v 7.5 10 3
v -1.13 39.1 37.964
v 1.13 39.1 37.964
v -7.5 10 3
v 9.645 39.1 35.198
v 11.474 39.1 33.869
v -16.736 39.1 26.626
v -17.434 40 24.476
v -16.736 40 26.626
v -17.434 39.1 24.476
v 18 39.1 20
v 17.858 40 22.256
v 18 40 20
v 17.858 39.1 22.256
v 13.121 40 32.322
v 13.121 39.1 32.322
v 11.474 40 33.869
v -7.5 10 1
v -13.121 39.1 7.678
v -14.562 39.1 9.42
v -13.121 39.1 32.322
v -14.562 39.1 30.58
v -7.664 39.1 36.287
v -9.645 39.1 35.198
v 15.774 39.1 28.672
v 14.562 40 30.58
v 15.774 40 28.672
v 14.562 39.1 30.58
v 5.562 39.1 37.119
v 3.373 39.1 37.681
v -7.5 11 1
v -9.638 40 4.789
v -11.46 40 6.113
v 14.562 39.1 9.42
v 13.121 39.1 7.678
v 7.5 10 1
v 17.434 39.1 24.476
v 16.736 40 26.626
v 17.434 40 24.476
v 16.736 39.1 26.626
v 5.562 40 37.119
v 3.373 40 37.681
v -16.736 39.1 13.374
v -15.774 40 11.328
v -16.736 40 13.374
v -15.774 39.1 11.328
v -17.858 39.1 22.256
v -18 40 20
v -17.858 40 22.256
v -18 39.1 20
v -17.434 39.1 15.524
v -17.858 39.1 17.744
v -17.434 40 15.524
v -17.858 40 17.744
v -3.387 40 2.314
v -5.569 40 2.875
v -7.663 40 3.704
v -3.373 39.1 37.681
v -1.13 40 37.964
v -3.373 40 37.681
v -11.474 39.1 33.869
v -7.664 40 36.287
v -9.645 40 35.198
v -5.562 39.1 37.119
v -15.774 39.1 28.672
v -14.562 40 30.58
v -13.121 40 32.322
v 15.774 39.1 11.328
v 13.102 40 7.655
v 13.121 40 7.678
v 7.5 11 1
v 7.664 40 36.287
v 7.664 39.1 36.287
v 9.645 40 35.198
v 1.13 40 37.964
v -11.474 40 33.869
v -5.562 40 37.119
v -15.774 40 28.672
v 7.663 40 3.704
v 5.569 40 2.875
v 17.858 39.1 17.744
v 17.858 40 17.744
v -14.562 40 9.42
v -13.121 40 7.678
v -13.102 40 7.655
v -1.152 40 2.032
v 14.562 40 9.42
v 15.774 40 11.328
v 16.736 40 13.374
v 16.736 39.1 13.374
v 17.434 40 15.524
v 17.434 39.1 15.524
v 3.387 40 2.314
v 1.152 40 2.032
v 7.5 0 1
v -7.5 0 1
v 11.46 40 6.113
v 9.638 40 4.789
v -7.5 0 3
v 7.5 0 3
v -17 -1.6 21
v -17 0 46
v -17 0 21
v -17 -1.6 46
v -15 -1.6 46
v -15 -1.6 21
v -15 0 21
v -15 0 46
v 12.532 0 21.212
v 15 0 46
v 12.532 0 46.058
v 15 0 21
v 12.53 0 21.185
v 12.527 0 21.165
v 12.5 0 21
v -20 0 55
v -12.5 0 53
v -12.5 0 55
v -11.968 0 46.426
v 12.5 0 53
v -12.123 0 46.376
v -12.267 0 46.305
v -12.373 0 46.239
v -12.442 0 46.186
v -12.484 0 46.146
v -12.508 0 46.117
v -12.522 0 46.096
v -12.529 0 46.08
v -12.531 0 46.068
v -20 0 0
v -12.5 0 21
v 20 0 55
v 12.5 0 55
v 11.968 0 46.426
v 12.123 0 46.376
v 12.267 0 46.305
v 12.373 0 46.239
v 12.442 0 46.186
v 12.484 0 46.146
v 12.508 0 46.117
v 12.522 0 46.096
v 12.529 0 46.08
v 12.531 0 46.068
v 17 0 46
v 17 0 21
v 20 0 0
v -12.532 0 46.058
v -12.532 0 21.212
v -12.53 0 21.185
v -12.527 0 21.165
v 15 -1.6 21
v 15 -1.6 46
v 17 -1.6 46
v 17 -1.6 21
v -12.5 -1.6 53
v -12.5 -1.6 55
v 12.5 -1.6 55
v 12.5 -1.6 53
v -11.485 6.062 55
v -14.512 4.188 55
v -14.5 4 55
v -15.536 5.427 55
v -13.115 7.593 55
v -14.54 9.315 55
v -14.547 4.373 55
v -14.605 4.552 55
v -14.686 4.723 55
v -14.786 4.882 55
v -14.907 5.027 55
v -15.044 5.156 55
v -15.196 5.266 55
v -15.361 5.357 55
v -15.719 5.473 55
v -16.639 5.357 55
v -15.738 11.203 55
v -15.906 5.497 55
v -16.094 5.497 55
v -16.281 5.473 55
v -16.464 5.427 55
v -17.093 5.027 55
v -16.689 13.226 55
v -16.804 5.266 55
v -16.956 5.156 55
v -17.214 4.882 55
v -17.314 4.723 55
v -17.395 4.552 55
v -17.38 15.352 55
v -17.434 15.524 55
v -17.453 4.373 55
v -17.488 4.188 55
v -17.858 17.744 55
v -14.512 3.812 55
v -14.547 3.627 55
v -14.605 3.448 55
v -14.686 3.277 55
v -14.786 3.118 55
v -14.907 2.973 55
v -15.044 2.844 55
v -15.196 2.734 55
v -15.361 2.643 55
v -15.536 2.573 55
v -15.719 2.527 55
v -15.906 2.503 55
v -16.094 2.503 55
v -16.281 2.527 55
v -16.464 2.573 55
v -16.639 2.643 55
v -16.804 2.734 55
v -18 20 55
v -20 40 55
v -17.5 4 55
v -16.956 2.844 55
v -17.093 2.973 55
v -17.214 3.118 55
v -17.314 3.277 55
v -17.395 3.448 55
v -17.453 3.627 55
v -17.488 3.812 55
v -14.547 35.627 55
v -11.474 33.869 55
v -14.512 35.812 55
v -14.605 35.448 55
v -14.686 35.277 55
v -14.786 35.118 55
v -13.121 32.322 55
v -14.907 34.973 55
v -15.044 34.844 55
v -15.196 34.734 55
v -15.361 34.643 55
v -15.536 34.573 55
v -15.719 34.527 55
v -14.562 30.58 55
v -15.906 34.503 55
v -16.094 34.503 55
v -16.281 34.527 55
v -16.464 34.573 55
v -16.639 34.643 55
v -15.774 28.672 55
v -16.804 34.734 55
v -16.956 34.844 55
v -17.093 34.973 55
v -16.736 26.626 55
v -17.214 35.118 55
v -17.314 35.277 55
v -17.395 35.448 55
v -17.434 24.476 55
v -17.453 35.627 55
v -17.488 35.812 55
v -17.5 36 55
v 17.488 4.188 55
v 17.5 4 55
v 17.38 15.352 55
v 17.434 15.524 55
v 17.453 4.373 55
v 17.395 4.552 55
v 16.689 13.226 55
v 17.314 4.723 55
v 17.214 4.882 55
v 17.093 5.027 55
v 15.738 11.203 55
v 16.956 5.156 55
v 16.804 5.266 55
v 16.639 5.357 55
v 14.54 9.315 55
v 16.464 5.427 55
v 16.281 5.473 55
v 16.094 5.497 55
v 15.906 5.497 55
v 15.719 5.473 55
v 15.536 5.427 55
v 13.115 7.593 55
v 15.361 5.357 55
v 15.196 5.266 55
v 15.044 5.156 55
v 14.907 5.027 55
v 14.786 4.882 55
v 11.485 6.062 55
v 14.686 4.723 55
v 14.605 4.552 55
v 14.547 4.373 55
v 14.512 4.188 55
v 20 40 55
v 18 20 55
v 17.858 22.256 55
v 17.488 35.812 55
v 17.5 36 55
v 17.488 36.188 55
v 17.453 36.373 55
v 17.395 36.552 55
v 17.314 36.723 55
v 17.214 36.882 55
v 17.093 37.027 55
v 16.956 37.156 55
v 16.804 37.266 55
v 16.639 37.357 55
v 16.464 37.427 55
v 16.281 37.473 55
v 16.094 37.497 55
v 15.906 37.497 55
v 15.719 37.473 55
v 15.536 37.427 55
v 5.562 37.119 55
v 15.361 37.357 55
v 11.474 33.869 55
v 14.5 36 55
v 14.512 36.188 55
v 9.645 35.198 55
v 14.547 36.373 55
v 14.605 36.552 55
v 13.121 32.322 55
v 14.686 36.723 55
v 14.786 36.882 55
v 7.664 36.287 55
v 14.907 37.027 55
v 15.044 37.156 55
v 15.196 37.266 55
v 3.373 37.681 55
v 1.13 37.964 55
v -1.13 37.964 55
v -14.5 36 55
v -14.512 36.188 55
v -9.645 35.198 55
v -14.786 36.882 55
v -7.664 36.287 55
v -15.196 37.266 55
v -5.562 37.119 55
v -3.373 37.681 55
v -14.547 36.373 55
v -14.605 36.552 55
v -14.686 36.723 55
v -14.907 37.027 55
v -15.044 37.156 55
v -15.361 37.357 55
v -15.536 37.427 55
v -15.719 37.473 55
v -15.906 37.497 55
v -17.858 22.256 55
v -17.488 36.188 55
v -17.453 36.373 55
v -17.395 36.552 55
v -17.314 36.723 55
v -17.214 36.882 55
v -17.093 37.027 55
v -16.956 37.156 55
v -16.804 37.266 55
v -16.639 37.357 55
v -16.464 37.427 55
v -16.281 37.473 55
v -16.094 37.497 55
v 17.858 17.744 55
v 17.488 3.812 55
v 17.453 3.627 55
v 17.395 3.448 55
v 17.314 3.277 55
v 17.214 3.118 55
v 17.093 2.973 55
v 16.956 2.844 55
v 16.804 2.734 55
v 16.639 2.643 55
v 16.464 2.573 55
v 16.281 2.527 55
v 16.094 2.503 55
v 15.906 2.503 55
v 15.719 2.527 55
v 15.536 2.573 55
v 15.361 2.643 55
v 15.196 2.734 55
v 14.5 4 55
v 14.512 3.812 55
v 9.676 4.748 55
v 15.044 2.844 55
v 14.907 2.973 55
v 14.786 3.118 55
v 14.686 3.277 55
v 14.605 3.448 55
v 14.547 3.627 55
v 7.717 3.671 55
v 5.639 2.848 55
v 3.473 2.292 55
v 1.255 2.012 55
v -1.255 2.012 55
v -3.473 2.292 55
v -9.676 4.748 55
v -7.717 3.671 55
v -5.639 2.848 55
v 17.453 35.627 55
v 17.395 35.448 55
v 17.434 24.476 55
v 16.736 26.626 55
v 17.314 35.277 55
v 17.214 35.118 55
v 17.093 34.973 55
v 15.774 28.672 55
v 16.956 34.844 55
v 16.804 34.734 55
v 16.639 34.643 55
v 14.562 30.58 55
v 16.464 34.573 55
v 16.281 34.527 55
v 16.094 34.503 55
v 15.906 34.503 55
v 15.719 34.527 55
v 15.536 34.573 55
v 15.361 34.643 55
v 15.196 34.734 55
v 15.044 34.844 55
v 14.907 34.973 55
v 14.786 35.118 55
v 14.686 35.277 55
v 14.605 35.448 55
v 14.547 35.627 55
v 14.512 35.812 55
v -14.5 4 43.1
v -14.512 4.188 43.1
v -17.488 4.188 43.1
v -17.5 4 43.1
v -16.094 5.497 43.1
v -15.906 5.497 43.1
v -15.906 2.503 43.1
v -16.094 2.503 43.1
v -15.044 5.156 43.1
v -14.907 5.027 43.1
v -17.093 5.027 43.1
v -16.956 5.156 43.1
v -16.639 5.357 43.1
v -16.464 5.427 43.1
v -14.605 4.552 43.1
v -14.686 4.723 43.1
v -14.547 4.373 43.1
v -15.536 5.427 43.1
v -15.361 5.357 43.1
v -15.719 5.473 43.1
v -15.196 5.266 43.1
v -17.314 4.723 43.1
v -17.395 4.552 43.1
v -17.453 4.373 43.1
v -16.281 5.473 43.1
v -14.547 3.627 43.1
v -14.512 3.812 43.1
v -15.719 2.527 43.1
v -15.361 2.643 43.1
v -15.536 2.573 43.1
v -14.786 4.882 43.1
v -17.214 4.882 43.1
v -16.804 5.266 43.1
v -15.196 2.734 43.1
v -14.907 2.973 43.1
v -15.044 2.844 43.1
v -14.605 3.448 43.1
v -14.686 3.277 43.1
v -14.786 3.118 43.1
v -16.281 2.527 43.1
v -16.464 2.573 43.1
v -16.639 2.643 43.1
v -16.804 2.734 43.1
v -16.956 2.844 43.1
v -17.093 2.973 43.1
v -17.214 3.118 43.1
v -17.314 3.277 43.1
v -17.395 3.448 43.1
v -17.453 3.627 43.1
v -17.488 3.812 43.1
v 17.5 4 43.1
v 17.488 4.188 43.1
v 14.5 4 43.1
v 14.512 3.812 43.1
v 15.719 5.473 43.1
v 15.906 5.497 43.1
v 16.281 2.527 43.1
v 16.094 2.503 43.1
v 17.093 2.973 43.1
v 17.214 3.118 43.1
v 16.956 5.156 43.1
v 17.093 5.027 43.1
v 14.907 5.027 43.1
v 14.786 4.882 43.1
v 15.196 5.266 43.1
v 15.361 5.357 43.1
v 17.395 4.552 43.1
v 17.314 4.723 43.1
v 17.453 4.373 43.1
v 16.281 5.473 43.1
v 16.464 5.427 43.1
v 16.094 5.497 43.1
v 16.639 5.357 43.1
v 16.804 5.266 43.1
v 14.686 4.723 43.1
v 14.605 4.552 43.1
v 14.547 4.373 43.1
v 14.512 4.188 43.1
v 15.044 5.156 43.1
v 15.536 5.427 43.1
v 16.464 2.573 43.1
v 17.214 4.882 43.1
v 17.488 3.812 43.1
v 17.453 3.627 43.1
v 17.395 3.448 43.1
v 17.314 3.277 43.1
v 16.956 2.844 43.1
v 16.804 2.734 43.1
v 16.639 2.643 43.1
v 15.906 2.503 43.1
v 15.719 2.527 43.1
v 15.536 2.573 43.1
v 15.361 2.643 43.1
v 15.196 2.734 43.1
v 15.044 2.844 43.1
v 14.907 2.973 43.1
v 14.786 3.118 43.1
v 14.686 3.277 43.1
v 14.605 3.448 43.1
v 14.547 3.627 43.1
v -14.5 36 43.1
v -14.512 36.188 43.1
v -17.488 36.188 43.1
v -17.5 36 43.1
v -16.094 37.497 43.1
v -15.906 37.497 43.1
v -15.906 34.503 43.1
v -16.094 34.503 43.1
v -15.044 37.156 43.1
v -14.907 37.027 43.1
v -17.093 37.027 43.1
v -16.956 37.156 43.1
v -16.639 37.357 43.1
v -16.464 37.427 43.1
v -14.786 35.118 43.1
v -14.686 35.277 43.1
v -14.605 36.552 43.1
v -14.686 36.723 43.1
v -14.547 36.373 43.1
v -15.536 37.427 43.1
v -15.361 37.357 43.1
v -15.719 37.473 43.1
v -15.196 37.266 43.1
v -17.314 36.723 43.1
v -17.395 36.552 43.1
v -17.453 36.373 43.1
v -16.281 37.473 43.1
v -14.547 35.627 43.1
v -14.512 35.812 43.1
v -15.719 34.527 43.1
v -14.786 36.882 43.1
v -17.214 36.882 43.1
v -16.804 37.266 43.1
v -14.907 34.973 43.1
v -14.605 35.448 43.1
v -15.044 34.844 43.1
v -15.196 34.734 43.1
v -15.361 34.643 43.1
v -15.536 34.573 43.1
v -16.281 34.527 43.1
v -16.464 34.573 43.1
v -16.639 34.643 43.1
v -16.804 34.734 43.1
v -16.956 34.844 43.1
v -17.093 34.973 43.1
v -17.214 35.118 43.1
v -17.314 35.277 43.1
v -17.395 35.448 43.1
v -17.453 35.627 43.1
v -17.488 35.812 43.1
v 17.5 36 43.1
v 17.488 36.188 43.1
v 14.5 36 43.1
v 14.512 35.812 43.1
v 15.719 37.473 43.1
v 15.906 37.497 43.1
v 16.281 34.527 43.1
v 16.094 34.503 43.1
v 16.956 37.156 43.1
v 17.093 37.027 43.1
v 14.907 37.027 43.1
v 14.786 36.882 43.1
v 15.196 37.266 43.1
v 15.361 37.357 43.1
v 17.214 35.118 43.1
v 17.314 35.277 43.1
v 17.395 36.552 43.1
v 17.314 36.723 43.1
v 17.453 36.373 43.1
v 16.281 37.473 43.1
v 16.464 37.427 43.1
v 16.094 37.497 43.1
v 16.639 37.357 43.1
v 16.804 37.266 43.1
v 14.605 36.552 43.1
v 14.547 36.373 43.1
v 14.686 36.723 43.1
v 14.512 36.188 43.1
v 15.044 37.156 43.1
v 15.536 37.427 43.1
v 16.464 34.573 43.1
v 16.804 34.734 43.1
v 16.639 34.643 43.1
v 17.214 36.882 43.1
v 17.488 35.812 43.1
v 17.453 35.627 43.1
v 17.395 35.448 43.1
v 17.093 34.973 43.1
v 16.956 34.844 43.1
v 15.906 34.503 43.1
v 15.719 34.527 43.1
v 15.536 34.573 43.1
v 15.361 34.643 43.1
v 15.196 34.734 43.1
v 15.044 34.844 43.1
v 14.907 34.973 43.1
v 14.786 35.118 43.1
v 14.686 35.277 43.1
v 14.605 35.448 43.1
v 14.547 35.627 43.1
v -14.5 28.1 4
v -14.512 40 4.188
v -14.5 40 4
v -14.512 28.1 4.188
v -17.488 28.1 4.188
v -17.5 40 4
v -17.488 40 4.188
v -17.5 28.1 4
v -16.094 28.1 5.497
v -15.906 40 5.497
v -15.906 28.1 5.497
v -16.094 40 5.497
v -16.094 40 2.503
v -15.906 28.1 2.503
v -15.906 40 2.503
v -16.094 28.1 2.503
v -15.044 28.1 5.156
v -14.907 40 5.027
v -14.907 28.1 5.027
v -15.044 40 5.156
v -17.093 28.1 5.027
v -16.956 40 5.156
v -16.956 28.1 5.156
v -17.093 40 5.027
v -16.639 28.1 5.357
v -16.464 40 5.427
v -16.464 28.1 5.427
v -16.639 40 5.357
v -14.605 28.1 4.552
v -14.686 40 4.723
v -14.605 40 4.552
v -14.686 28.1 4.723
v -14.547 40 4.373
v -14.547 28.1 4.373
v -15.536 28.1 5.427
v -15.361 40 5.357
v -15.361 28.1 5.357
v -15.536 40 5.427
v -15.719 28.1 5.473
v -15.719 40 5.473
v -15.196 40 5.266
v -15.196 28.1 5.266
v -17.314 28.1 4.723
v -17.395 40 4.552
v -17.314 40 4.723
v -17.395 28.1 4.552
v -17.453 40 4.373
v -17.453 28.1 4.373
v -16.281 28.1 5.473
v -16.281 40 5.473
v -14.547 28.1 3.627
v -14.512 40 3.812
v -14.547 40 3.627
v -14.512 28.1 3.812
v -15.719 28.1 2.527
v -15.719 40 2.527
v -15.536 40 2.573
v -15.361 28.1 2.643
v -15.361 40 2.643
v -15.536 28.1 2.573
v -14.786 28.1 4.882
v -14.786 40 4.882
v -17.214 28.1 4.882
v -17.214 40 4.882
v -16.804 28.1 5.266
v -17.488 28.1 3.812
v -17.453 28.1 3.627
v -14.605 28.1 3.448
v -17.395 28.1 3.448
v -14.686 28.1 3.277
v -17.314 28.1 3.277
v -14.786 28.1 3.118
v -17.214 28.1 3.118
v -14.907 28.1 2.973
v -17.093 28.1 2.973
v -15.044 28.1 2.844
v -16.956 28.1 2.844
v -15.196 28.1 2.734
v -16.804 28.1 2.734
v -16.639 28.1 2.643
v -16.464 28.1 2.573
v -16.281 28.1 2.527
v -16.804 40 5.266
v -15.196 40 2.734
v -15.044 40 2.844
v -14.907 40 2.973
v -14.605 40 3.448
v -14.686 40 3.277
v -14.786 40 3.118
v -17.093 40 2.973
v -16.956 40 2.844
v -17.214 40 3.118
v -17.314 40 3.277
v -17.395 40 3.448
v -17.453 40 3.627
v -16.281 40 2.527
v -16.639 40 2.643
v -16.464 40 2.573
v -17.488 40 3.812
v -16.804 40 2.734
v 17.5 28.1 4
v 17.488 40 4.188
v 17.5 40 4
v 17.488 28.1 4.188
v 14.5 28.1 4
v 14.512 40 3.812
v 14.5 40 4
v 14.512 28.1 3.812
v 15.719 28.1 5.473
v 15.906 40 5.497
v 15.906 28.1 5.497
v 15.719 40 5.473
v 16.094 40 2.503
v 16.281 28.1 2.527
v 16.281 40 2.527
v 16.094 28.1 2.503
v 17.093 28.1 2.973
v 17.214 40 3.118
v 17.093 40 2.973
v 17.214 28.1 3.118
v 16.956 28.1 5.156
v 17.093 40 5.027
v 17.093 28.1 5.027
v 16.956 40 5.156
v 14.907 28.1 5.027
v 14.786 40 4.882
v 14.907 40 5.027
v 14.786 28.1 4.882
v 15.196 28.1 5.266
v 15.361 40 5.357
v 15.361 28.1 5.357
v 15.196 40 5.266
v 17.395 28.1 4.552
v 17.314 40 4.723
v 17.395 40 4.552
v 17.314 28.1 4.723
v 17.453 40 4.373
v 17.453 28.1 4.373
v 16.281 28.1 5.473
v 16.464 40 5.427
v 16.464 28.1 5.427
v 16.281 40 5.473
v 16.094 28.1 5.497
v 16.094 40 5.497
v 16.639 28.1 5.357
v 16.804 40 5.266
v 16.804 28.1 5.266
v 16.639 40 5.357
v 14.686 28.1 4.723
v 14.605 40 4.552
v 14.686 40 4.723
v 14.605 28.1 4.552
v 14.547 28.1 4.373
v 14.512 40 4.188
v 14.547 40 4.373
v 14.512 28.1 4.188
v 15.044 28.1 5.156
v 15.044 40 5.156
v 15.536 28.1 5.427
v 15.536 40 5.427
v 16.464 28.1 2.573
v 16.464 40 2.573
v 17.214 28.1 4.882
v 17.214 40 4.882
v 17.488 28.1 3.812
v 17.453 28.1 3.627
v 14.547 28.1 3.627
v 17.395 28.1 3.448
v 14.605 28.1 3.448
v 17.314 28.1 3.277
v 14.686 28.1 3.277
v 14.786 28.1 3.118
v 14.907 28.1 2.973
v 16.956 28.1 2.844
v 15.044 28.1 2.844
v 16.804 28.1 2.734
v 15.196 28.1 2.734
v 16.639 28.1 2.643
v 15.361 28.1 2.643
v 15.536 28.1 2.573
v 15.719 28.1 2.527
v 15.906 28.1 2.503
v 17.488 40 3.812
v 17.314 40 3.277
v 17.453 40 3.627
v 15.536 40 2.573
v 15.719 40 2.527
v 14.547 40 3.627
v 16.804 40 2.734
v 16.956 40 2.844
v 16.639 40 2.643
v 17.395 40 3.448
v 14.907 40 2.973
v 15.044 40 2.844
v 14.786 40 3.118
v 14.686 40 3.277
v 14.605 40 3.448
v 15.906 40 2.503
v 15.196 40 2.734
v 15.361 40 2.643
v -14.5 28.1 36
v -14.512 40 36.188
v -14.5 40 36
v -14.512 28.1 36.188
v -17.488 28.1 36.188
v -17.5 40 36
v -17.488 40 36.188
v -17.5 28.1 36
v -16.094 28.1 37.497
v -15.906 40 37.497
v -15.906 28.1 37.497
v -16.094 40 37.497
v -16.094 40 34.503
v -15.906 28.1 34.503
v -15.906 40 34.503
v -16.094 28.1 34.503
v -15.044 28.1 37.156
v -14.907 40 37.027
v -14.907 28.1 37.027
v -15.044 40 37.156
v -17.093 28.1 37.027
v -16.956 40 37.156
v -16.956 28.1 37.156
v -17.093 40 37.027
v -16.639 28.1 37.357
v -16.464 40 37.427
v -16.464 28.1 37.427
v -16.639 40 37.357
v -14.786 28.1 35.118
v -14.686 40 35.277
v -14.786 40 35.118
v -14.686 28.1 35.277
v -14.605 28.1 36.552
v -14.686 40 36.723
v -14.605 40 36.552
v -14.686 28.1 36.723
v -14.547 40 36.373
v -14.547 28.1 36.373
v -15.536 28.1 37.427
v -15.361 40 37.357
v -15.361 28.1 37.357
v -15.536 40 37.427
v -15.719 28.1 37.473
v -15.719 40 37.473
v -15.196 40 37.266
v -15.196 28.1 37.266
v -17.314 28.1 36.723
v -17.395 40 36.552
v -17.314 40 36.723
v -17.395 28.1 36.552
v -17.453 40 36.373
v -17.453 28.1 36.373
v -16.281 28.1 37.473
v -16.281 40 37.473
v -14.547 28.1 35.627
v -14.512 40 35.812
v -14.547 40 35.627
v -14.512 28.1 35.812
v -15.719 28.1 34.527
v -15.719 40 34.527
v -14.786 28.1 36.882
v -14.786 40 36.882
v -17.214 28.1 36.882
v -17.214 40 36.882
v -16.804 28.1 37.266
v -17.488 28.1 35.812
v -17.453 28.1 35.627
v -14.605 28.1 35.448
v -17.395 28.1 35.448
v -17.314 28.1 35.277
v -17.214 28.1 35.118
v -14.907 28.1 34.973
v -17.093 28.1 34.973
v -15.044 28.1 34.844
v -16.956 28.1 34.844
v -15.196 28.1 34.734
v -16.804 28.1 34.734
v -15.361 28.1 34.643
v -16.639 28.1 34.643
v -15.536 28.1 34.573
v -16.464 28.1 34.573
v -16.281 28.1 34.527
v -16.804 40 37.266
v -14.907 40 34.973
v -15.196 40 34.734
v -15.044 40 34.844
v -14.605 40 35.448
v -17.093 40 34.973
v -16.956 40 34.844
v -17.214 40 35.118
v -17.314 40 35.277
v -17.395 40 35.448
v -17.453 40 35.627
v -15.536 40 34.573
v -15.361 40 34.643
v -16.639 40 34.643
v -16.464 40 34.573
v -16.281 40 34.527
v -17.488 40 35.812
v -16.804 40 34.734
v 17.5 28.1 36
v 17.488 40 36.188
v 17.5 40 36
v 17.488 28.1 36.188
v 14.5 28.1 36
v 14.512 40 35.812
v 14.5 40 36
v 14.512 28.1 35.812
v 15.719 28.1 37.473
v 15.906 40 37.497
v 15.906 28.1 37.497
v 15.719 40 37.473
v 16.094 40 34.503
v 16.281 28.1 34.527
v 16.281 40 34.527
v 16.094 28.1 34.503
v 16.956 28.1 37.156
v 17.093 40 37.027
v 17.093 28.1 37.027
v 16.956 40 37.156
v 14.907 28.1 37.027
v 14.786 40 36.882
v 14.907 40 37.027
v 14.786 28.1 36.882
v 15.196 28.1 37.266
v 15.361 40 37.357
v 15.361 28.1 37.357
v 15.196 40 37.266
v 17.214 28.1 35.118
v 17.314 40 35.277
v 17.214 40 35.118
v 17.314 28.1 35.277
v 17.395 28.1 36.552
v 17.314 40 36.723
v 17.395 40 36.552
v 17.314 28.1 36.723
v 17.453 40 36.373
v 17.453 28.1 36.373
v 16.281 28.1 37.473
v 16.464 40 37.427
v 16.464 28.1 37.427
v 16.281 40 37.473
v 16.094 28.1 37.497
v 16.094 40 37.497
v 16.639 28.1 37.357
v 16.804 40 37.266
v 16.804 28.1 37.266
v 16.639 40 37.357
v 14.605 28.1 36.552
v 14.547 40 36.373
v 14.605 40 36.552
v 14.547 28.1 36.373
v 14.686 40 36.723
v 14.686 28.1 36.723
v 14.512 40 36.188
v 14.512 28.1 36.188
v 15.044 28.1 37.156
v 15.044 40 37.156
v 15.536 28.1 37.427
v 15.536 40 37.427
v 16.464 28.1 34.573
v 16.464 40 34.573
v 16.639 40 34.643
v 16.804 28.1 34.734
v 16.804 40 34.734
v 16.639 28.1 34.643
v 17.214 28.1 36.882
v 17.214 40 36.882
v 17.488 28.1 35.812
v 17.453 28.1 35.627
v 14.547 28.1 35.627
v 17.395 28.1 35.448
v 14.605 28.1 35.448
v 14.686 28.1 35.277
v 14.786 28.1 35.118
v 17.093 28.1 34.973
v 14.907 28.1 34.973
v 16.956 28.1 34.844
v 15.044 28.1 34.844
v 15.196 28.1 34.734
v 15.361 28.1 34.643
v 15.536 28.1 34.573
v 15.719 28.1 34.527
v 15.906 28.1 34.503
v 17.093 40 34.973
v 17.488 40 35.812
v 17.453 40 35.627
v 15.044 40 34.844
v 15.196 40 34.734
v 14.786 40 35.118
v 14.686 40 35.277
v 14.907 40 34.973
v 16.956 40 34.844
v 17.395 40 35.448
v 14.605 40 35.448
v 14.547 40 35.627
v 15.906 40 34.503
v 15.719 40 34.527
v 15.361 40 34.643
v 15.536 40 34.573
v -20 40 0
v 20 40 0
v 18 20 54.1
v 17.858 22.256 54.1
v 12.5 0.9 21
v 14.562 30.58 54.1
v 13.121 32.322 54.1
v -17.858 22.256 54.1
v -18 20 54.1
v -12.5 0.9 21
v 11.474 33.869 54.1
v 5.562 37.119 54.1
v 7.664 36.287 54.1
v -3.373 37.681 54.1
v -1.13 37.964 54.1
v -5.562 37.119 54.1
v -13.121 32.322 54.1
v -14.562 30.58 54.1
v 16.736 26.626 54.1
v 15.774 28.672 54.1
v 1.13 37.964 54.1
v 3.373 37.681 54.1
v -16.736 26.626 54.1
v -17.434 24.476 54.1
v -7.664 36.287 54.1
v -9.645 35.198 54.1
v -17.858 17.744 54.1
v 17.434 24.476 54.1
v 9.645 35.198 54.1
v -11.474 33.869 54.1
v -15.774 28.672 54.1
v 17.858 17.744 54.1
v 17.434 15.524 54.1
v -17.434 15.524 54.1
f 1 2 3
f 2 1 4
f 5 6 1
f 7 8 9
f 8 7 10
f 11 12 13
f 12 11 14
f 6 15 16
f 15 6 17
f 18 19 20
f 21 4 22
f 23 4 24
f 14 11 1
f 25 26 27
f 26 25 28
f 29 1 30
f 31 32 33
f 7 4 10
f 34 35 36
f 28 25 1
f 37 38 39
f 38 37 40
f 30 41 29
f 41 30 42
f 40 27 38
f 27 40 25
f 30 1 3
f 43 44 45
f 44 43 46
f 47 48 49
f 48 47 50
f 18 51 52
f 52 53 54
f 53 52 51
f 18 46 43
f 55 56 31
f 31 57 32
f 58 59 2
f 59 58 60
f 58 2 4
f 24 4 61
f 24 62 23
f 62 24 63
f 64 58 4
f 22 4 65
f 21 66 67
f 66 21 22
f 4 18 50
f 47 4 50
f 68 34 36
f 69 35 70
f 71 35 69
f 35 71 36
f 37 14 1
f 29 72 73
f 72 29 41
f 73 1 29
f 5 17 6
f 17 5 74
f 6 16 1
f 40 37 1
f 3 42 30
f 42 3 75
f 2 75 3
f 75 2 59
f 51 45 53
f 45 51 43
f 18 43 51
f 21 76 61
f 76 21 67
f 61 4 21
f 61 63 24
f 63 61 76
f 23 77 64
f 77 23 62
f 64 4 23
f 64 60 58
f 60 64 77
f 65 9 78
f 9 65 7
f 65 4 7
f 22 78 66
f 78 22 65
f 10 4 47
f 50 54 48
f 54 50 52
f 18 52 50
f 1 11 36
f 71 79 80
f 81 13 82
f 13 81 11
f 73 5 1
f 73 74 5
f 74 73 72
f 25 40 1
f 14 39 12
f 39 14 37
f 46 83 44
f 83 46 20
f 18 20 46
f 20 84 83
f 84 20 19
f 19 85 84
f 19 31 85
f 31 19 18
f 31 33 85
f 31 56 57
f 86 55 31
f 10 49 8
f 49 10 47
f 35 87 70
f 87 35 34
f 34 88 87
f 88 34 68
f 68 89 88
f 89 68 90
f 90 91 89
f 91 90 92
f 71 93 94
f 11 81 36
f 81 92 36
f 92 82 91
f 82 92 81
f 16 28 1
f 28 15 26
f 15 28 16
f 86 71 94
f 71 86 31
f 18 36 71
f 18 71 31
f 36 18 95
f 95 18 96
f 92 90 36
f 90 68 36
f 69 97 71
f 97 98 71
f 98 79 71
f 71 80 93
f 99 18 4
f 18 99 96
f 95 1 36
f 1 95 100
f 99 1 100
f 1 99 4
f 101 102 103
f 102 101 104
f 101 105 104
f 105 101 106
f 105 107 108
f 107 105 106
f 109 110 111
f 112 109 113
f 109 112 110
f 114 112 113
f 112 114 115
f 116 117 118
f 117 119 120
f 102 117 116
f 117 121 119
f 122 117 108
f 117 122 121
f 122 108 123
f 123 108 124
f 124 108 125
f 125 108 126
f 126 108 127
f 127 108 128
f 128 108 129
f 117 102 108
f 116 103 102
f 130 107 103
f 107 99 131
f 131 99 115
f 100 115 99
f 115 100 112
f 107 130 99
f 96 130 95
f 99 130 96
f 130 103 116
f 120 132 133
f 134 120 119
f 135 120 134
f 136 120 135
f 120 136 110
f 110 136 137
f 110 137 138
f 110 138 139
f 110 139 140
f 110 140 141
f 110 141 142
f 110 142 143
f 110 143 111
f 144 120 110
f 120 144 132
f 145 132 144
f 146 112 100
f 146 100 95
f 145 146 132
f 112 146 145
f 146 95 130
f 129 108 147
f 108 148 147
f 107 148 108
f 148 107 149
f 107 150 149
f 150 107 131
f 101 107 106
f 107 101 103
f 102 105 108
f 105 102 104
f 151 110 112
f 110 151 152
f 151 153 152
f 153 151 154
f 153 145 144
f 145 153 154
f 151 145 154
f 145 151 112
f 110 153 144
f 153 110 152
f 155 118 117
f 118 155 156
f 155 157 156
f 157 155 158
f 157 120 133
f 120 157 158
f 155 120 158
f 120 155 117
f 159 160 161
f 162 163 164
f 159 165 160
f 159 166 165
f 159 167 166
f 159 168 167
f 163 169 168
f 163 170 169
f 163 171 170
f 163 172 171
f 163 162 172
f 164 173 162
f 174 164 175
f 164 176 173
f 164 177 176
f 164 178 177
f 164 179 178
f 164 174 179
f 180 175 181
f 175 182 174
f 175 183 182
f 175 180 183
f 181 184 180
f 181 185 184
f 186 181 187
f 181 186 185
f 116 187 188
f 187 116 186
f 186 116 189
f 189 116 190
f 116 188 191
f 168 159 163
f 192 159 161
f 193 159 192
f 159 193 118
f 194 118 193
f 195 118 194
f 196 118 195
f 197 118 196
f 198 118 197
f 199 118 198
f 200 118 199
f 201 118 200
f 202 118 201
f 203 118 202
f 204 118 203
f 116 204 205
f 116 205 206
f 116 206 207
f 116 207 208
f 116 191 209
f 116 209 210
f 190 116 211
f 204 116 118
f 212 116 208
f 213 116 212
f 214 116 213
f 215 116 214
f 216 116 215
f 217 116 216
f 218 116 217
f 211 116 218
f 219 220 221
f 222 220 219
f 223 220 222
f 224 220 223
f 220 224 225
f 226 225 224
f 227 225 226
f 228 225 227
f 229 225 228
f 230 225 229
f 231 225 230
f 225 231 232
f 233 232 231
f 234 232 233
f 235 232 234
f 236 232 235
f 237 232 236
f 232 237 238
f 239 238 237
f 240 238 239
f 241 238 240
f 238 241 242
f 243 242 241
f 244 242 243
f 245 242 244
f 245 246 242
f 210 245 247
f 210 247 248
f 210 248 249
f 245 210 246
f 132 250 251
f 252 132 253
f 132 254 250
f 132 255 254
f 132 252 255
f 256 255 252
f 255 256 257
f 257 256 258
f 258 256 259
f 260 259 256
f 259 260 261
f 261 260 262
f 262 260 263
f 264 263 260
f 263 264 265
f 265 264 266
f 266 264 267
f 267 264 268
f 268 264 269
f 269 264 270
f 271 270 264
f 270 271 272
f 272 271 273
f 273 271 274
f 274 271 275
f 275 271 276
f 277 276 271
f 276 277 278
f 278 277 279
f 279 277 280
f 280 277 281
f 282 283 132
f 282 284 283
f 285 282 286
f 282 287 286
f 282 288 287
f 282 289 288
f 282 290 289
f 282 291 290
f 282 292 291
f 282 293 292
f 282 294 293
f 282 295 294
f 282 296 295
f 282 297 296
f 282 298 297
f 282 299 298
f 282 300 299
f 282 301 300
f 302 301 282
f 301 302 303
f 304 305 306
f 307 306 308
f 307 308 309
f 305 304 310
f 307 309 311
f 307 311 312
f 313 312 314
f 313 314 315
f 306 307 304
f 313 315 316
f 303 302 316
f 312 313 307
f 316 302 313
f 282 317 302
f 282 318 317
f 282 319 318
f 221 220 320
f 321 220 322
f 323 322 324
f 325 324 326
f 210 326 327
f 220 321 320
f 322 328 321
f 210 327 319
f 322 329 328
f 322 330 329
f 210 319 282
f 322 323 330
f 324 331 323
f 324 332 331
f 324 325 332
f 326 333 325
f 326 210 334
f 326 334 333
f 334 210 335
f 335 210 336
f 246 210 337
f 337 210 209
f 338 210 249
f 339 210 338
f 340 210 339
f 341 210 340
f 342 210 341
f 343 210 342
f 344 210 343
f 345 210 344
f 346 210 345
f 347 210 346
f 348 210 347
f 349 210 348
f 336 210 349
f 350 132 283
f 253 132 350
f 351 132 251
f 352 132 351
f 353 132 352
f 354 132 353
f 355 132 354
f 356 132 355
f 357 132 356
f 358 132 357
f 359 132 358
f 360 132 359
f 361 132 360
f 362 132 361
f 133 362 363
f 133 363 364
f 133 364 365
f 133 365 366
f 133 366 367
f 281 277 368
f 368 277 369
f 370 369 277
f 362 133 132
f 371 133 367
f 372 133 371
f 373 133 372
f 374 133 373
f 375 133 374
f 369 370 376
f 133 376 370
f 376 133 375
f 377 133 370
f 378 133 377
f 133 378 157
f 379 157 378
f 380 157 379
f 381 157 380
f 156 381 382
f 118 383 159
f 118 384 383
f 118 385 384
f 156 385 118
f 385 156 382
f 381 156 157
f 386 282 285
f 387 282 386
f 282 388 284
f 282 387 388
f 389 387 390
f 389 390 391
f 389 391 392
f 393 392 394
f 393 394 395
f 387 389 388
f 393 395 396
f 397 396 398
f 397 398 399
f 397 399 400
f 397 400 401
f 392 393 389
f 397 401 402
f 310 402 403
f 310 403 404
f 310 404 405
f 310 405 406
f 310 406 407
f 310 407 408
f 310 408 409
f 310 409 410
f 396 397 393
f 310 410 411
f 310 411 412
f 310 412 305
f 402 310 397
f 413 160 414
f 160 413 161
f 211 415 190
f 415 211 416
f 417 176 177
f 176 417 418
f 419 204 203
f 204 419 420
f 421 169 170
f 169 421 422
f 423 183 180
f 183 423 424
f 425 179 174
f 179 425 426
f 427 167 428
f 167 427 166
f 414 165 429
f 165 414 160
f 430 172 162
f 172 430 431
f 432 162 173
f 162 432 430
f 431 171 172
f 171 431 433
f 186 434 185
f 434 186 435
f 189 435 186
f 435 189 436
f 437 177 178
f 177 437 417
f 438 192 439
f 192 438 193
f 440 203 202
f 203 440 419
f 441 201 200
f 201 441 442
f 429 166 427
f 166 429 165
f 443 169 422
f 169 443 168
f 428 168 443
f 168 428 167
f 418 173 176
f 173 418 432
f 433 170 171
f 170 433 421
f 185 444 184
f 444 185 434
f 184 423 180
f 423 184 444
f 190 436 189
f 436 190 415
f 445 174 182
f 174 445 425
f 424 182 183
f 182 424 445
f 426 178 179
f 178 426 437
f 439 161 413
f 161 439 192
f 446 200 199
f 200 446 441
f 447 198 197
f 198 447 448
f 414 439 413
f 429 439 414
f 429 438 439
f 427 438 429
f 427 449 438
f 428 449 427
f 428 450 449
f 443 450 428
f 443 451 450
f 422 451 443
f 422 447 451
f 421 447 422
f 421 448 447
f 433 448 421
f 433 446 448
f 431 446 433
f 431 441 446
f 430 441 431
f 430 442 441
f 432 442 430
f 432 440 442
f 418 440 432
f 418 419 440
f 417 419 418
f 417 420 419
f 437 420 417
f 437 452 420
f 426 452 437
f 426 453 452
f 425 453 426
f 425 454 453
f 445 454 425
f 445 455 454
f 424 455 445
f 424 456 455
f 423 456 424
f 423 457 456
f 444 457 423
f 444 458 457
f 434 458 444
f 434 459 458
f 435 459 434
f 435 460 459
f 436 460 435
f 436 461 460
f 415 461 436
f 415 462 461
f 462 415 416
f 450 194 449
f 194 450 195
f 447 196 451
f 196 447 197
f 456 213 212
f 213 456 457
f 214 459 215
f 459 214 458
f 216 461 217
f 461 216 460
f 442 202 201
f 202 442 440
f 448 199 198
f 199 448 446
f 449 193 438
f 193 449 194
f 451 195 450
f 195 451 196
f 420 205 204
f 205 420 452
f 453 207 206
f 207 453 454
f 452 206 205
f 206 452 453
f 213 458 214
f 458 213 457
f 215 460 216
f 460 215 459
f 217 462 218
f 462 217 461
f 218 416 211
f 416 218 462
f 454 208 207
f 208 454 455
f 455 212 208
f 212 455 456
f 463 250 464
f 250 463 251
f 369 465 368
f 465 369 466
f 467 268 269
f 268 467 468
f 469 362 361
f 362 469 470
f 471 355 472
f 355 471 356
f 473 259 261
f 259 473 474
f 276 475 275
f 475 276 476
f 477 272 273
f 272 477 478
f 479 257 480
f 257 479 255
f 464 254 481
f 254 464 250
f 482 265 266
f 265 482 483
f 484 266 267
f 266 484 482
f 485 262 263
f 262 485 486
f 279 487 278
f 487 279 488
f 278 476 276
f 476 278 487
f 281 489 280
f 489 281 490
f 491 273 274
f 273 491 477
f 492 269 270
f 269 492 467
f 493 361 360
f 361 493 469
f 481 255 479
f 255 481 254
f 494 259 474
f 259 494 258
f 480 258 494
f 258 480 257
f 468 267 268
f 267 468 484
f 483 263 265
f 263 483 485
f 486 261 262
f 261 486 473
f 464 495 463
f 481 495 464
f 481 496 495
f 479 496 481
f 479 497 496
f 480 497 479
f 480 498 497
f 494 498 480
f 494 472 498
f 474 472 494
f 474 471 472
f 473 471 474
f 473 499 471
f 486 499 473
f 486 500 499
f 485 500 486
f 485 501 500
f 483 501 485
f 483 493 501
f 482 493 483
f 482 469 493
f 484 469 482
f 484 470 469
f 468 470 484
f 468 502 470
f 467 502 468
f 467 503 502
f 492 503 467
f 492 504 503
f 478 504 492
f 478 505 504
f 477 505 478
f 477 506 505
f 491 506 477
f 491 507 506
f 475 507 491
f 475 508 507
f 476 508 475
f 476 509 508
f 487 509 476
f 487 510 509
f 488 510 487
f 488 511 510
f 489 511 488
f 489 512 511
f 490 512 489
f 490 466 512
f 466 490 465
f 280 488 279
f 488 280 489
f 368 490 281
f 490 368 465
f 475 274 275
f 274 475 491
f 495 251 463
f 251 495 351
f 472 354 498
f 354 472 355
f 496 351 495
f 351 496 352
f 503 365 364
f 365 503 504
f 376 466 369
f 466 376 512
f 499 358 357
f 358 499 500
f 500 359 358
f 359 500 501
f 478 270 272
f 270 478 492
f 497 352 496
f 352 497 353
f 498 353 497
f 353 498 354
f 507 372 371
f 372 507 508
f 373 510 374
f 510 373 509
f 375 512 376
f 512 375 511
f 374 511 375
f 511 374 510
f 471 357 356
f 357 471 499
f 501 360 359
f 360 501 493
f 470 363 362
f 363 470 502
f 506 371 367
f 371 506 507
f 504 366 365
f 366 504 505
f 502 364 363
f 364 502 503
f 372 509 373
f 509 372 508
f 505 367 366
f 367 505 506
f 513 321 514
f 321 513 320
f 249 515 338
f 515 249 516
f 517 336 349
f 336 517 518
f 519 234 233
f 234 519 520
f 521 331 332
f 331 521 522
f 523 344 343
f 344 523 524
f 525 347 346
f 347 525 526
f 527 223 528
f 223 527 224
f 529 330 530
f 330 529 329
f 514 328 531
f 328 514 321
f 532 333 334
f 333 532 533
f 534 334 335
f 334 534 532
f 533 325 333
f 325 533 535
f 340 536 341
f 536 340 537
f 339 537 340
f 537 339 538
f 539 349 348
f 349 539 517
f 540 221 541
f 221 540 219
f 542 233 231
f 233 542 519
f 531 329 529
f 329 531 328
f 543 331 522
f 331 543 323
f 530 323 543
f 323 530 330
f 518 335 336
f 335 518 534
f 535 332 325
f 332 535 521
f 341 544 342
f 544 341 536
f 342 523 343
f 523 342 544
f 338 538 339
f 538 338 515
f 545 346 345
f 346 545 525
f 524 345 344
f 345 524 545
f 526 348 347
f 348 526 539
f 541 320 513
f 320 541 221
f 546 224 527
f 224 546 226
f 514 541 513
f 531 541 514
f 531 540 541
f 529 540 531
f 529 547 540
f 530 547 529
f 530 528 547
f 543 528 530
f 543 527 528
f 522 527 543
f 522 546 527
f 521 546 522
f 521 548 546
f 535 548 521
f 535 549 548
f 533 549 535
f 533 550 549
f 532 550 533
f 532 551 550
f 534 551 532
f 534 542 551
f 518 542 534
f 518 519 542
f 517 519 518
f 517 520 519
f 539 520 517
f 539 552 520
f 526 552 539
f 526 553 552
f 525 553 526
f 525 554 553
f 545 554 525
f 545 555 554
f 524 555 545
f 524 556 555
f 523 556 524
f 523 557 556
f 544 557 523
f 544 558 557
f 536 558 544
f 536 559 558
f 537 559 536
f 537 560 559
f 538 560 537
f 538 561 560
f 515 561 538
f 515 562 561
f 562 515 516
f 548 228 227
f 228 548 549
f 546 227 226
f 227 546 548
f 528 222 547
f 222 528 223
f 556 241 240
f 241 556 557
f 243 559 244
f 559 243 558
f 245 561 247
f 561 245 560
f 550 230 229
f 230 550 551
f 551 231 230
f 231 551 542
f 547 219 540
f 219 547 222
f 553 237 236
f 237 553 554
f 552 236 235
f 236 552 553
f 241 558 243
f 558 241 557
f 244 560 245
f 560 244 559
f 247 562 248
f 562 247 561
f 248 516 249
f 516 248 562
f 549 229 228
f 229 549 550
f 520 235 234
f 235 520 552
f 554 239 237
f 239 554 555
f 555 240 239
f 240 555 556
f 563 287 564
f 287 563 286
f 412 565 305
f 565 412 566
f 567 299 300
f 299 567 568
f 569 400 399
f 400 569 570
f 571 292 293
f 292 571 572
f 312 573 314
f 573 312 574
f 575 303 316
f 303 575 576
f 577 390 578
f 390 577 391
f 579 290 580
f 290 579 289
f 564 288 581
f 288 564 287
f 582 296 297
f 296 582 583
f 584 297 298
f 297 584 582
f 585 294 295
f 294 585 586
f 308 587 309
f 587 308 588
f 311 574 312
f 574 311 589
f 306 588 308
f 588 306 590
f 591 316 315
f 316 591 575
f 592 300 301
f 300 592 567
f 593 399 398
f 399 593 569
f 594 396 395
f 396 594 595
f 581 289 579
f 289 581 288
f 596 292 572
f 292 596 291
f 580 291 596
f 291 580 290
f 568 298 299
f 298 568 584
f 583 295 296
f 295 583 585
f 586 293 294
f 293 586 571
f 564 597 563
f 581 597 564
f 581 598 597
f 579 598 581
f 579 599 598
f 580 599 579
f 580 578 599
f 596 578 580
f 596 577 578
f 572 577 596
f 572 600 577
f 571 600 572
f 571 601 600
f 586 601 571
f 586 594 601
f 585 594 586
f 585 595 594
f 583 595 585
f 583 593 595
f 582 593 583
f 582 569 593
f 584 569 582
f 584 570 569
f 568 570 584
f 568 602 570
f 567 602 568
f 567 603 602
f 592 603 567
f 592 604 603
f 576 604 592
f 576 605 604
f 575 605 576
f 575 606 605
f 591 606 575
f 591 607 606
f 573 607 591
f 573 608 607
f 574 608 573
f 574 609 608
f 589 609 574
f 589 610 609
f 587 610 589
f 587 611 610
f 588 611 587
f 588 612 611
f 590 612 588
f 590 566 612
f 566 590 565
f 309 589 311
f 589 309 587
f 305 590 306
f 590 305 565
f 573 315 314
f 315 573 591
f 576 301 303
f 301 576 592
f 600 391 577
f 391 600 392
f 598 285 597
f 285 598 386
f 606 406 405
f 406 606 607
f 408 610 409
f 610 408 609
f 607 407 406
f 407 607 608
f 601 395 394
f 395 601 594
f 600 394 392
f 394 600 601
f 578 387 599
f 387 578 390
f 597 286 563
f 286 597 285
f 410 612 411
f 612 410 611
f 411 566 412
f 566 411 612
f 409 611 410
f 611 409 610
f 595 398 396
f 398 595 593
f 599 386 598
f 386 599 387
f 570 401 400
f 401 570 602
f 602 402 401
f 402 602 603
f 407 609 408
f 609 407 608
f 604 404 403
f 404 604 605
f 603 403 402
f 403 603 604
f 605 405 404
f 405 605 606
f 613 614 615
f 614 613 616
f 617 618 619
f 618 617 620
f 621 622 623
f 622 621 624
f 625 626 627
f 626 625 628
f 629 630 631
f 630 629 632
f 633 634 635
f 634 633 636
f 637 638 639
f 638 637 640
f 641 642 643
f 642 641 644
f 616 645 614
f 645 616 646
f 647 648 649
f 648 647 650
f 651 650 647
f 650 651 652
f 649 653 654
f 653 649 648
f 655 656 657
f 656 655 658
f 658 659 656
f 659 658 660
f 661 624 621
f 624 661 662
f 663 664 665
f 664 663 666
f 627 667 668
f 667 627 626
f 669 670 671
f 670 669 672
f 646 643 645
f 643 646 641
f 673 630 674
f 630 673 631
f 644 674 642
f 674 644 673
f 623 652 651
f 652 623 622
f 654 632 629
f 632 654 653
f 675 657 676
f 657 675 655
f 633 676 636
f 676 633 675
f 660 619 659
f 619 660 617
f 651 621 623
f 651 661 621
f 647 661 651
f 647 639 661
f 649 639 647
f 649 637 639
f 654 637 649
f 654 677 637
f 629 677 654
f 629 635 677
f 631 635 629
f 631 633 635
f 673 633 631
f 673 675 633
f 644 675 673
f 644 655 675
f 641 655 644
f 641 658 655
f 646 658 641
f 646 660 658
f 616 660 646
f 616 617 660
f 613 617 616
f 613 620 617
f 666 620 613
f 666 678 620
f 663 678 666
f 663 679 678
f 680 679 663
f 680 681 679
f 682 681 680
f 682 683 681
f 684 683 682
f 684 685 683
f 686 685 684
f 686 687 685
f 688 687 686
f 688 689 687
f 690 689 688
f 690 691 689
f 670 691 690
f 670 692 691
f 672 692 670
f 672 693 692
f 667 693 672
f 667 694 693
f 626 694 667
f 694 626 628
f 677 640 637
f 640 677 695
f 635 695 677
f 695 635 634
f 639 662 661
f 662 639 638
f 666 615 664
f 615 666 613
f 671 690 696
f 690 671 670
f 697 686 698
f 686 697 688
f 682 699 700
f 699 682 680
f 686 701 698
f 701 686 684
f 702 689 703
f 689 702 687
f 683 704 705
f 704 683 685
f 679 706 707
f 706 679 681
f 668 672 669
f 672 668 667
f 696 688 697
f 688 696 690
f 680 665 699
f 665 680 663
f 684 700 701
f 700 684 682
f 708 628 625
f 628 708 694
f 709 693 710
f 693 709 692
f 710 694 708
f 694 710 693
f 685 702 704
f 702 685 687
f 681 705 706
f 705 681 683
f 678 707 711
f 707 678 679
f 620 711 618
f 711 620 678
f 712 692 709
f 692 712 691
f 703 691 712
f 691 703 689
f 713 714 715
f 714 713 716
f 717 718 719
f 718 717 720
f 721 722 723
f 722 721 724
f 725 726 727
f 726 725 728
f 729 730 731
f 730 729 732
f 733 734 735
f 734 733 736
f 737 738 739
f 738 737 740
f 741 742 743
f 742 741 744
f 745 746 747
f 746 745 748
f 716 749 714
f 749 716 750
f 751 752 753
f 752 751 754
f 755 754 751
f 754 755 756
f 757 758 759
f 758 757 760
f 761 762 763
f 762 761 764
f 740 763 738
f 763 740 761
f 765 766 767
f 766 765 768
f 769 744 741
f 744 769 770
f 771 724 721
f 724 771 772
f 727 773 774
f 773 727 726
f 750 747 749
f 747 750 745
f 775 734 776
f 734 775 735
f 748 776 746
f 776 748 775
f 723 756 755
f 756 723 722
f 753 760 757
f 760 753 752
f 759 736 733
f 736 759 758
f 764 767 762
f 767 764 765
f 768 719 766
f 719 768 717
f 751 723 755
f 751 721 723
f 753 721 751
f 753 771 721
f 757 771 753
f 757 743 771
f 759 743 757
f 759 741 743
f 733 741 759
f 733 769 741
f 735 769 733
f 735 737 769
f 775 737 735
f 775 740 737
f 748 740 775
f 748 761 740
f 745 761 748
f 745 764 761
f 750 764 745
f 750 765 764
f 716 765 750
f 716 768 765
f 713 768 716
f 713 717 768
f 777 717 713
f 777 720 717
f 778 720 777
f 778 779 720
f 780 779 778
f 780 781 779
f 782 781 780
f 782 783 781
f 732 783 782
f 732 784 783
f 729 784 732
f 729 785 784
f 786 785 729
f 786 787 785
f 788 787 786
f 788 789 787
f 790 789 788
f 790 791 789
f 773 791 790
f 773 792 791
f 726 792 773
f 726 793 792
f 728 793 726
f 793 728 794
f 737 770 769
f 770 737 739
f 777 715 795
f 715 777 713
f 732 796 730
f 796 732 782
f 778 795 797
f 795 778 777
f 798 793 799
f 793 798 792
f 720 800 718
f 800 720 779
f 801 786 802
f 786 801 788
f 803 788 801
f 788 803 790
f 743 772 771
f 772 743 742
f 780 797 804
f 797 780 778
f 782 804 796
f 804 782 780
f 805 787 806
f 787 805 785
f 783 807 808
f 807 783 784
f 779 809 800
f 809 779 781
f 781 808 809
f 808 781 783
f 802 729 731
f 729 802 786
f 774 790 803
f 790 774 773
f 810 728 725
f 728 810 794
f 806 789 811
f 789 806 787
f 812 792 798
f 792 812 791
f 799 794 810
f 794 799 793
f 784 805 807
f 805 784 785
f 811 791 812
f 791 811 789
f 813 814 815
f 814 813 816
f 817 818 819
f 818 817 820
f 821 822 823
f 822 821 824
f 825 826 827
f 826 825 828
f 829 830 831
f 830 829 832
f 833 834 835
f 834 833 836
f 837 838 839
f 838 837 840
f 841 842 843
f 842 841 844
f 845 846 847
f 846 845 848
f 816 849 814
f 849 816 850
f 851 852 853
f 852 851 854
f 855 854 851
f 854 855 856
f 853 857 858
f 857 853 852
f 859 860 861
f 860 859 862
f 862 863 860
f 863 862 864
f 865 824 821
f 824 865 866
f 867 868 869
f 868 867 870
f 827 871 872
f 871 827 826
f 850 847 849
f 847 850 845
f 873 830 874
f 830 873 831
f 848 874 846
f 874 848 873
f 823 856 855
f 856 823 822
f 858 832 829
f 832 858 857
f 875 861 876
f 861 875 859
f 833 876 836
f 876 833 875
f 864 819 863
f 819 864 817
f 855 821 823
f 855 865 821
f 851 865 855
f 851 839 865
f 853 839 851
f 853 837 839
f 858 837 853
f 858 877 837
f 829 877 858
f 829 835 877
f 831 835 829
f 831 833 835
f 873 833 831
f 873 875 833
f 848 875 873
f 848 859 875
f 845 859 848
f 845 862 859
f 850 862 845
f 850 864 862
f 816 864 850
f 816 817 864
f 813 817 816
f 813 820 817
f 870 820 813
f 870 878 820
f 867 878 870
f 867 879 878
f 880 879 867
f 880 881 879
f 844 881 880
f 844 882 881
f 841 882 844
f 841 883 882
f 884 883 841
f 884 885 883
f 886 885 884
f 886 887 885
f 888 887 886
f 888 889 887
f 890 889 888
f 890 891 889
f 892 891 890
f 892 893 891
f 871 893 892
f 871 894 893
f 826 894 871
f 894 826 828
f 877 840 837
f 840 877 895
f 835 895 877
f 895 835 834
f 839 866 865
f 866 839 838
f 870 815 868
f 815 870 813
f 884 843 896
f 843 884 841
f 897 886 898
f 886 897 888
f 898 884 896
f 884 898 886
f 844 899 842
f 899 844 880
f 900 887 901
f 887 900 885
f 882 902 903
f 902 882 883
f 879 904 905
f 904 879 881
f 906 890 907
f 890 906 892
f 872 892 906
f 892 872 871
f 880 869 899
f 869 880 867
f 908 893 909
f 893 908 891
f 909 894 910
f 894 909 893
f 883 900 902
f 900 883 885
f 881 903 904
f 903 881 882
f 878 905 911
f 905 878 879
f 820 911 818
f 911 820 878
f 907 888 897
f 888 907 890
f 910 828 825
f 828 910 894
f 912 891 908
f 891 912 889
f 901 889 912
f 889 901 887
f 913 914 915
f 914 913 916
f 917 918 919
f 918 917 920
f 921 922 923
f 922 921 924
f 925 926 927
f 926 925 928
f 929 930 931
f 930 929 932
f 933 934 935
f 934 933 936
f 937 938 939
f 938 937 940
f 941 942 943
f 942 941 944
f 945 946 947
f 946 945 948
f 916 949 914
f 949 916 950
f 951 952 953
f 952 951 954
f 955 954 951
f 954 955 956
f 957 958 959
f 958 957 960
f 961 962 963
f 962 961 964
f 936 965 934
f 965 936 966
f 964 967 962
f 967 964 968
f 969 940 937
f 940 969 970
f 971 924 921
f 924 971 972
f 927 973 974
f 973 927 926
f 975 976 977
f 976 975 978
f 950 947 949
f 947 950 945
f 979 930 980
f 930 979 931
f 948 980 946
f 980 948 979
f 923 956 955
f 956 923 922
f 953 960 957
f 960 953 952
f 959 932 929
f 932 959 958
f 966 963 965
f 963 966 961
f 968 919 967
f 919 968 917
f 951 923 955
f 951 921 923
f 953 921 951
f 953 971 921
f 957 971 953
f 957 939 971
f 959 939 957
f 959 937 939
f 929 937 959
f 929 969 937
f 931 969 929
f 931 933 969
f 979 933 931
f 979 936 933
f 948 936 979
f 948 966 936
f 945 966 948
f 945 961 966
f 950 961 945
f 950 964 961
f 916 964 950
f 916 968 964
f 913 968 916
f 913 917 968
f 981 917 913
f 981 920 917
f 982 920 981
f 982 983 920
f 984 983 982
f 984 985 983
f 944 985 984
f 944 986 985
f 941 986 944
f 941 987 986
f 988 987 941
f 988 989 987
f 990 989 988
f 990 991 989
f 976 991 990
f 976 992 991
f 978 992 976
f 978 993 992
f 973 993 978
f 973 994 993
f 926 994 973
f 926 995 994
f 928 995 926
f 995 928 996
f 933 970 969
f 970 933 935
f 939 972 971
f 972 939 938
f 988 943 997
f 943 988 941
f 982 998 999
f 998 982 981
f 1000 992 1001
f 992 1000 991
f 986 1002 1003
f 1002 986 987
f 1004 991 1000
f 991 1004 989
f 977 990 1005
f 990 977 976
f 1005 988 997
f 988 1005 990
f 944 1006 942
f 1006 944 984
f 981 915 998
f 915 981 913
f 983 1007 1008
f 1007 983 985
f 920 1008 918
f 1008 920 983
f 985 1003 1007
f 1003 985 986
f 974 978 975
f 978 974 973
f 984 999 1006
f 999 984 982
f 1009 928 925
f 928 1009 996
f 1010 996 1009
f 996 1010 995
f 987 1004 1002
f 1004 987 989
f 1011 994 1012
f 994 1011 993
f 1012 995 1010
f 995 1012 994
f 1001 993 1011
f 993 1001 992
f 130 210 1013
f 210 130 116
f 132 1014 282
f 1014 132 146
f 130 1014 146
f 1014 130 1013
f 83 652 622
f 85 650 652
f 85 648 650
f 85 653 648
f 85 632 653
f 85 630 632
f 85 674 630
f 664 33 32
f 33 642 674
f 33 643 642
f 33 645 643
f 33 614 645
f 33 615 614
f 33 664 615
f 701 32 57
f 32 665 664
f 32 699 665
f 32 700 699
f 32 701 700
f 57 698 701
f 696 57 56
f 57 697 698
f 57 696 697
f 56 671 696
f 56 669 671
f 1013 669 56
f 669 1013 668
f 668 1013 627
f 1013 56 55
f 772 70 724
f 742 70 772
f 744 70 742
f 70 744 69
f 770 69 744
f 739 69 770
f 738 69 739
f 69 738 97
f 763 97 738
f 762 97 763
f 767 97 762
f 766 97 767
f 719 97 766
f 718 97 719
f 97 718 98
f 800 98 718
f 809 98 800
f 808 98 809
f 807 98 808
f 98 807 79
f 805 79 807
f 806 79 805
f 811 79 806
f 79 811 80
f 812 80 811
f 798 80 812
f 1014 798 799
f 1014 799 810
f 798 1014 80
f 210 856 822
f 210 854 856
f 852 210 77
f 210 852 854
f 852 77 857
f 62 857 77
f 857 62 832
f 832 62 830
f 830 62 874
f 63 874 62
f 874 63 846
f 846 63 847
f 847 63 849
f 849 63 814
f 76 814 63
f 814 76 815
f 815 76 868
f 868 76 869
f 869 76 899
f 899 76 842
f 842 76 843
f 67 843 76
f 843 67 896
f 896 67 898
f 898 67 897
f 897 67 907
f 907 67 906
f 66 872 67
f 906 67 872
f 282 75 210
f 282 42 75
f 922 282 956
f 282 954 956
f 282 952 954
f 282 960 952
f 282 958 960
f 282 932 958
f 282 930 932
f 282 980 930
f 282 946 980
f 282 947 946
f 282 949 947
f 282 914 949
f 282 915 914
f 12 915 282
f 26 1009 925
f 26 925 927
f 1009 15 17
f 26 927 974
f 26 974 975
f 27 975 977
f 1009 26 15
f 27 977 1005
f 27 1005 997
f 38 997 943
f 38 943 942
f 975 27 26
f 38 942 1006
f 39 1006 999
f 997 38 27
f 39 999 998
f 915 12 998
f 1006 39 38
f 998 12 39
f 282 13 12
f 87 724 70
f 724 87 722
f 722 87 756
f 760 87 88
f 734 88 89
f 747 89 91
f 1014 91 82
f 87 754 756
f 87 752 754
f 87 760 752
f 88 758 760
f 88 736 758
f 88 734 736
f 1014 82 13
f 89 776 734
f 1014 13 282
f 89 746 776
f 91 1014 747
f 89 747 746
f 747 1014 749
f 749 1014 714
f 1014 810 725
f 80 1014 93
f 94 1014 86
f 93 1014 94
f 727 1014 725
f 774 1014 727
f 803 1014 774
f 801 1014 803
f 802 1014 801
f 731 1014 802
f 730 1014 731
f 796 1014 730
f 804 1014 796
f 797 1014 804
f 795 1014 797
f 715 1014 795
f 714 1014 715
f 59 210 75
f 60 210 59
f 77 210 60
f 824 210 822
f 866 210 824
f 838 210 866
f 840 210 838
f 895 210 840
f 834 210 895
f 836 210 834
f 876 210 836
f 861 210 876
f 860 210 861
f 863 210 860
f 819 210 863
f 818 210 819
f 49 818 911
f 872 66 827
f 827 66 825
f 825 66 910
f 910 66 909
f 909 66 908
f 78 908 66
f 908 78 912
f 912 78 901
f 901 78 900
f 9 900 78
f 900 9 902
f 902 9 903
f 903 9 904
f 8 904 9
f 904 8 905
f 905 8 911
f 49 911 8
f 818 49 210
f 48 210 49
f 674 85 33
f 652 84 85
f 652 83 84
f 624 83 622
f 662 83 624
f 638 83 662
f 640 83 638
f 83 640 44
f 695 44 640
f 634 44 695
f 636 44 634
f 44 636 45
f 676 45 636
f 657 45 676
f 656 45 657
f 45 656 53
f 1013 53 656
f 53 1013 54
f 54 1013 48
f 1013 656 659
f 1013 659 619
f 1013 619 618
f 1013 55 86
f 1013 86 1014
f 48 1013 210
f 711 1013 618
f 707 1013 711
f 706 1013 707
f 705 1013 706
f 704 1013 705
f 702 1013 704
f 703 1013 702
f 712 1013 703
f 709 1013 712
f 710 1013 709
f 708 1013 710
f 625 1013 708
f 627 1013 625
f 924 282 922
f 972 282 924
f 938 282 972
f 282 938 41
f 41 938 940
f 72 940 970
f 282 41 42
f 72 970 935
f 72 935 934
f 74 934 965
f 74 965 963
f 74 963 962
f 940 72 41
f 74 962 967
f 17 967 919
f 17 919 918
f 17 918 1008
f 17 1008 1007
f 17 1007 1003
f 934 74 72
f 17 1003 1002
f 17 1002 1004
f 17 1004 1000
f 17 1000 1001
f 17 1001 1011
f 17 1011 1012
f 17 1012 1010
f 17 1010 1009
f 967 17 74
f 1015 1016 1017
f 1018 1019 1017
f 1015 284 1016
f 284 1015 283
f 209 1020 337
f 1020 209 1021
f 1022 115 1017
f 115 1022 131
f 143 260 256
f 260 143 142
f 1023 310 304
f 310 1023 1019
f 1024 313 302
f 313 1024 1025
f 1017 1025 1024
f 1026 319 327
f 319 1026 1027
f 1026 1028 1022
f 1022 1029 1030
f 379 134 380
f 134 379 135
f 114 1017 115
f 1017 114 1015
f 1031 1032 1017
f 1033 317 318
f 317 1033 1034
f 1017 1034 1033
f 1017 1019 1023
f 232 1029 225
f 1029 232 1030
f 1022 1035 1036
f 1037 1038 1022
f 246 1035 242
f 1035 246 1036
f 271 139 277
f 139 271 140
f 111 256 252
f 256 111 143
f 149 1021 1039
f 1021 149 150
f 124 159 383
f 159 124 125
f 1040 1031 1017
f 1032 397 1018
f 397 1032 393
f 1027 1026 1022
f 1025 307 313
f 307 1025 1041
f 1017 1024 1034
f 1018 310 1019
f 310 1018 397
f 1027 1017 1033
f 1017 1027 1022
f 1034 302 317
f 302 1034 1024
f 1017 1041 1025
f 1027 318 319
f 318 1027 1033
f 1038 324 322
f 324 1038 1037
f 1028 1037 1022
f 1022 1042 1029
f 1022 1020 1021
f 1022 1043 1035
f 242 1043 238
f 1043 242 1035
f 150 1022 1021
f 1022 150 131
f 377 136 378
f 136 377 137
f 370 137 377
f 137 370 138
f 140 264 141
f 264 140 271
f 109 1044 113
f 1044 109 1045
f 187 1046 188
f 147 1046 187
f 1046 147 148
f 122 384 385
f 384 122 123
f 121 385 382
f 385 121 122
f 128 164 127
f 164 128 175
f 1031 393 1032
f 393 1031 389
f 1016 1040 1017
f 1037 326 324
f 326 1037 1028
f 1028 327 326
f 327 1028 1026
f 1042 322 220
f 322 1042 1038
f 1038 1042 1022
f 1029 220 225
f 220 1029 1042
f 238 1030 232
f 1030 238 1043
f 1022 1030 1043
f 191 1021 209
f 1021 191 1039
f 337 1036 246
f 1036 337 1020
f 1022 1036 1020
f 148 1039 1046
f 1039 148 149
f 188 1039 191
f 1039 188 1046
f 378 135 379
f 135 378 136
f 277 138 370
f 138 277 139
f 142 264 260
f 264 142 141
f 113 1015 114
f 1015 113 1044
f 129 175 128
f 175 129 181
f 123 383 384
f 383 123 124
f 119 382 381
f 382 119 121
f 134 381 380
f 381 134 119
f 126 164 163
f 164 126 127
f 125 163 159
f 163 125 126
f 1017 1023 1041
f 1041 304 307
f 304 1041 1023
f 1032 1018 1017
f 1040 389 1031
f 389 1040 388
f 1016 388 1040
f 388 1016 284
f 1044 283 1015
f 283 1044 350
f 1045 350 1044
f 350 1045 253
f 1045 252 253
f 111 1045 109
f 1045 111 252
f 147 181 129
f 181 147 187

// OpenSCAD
$fn=50;

holderX=40;
holderY=40;
holderZ=55;

fanOuterXY=40;
fanOuterH=11;

fanInnerR=36/2; /* noctua 40mm fan is about 38mm fan blade radius */

nozzleBlowOutX=15;
nozzleBlowOutZPos=1;

coolerBlowOutX=25;
coolerBlowOutZPos=nozzleBlowOutZPos+20;


screwR=3/2; //3mm screws
screwH=12; // fan height=10 + screwH=12 >> use M3x20
screwDistance=32; // each screw has a distance of 32mm to next screw (noctua 40mm fan)

module fanMock(fanXY=40,fanH=11)
{
  difference() {
    cube([fanXY,fanXY,fanH]);
    translate([fanOuterXY/2,fanOuterXY/2,-0.1]) cylinder(r=fanInnerR+1,h=fanOuterH+0.2,center=false);
  }
}


module sled()
{
  translate([-15-2,0,0]) cube([2,25,1.6]);
  translate([15,0,0]) cube([2,25,1.6]);
  translate([-25/2,25+7,0]) cube([25,2,1.6]);
}
/* sled(); */


module fanScrews()
{
  translate([-screwDistance/2,0,0]) cylinder(r=screwR, h=12, center=false);
  translate([screwDistance/2,0,0]) cylinder(r=screwR, h=12, center=false);
  translate([-screwDistance/2,screwDistance,0]) cylinder(r=screwR, h=12, center=false);
  translate([screwDistance/2,screwDistance,0]) cylinder(r=screwR, h=12, center=false);
}
/* fanScrews(); */

module fanHolder(screwedVersion=false) {

  difference() {
    translate([-holderX/2,0,0]) cube([holderX,holderY,holderZ]);

    union()
    {
      hull()
      {
        translate([-nozzleBlowOutX/2,10,nozzleBlowOutZPos]) cube([nozzleBlowOutX,1,2]);
        translate([0,40-1+0.1,fanOuterXY/2]) rotate([-90,0,0]) cylinder(r=fanInnerR, h=1, center=false);
      }
      hull()
      {
        translate([-nozzleBlowOutX/2,-0.1,1]) cube([nozzleBlowOutX,1,2]);
        translate([-nozzleBlowOutX/2,10,1]) cube([nozzleBlowOutX,1,2]);
      }
    }

    union()
    {
      hull()
      {
        translate([0,holderX/2,holderZ-1+0.1]) cylinder(r=fanInnerR, h=1, center=false);
        translate([-coolerBlowOutX/2,-0.1,coolerBlowOutZPos]) cube([coolerBlowOutX,1,coolerBlowOutX]);
      }
    }

    /* using screws (screws provided by noctua are not long enougth) */
    if(screwedVersion == true)
    {
      translate([0,(fanOuterXY-screwDistance)/2,holderZ-screwH+0.1]) fanScrews();
      translate([0,fanOuterXY+0.1,(fanOuterXY-screwDistance)/2]) rotate([90,0,0]) fanScrews();
    }
  }

  /* sled for holding holder in place!  */
  translate([0,0,coolerBlowOutZPos]) rotate([90,0,0]) sled();

  /* using noctua rubber strings provided with the fans (easy to mount, no screws needed)  */
  if(screwedVersion == false)
  {

  }

}

/* fanMock(); */
translate([0,0,0]) fanHolder(screwedVersion=true);
/* translate([-holderX/2,0,holderZ+1]) color("brown") fanMock();
translate([-holderX/2,holderY+1,fanOuterXY]) rotate([-90,0,0]) color("brown") fanMock(); */
